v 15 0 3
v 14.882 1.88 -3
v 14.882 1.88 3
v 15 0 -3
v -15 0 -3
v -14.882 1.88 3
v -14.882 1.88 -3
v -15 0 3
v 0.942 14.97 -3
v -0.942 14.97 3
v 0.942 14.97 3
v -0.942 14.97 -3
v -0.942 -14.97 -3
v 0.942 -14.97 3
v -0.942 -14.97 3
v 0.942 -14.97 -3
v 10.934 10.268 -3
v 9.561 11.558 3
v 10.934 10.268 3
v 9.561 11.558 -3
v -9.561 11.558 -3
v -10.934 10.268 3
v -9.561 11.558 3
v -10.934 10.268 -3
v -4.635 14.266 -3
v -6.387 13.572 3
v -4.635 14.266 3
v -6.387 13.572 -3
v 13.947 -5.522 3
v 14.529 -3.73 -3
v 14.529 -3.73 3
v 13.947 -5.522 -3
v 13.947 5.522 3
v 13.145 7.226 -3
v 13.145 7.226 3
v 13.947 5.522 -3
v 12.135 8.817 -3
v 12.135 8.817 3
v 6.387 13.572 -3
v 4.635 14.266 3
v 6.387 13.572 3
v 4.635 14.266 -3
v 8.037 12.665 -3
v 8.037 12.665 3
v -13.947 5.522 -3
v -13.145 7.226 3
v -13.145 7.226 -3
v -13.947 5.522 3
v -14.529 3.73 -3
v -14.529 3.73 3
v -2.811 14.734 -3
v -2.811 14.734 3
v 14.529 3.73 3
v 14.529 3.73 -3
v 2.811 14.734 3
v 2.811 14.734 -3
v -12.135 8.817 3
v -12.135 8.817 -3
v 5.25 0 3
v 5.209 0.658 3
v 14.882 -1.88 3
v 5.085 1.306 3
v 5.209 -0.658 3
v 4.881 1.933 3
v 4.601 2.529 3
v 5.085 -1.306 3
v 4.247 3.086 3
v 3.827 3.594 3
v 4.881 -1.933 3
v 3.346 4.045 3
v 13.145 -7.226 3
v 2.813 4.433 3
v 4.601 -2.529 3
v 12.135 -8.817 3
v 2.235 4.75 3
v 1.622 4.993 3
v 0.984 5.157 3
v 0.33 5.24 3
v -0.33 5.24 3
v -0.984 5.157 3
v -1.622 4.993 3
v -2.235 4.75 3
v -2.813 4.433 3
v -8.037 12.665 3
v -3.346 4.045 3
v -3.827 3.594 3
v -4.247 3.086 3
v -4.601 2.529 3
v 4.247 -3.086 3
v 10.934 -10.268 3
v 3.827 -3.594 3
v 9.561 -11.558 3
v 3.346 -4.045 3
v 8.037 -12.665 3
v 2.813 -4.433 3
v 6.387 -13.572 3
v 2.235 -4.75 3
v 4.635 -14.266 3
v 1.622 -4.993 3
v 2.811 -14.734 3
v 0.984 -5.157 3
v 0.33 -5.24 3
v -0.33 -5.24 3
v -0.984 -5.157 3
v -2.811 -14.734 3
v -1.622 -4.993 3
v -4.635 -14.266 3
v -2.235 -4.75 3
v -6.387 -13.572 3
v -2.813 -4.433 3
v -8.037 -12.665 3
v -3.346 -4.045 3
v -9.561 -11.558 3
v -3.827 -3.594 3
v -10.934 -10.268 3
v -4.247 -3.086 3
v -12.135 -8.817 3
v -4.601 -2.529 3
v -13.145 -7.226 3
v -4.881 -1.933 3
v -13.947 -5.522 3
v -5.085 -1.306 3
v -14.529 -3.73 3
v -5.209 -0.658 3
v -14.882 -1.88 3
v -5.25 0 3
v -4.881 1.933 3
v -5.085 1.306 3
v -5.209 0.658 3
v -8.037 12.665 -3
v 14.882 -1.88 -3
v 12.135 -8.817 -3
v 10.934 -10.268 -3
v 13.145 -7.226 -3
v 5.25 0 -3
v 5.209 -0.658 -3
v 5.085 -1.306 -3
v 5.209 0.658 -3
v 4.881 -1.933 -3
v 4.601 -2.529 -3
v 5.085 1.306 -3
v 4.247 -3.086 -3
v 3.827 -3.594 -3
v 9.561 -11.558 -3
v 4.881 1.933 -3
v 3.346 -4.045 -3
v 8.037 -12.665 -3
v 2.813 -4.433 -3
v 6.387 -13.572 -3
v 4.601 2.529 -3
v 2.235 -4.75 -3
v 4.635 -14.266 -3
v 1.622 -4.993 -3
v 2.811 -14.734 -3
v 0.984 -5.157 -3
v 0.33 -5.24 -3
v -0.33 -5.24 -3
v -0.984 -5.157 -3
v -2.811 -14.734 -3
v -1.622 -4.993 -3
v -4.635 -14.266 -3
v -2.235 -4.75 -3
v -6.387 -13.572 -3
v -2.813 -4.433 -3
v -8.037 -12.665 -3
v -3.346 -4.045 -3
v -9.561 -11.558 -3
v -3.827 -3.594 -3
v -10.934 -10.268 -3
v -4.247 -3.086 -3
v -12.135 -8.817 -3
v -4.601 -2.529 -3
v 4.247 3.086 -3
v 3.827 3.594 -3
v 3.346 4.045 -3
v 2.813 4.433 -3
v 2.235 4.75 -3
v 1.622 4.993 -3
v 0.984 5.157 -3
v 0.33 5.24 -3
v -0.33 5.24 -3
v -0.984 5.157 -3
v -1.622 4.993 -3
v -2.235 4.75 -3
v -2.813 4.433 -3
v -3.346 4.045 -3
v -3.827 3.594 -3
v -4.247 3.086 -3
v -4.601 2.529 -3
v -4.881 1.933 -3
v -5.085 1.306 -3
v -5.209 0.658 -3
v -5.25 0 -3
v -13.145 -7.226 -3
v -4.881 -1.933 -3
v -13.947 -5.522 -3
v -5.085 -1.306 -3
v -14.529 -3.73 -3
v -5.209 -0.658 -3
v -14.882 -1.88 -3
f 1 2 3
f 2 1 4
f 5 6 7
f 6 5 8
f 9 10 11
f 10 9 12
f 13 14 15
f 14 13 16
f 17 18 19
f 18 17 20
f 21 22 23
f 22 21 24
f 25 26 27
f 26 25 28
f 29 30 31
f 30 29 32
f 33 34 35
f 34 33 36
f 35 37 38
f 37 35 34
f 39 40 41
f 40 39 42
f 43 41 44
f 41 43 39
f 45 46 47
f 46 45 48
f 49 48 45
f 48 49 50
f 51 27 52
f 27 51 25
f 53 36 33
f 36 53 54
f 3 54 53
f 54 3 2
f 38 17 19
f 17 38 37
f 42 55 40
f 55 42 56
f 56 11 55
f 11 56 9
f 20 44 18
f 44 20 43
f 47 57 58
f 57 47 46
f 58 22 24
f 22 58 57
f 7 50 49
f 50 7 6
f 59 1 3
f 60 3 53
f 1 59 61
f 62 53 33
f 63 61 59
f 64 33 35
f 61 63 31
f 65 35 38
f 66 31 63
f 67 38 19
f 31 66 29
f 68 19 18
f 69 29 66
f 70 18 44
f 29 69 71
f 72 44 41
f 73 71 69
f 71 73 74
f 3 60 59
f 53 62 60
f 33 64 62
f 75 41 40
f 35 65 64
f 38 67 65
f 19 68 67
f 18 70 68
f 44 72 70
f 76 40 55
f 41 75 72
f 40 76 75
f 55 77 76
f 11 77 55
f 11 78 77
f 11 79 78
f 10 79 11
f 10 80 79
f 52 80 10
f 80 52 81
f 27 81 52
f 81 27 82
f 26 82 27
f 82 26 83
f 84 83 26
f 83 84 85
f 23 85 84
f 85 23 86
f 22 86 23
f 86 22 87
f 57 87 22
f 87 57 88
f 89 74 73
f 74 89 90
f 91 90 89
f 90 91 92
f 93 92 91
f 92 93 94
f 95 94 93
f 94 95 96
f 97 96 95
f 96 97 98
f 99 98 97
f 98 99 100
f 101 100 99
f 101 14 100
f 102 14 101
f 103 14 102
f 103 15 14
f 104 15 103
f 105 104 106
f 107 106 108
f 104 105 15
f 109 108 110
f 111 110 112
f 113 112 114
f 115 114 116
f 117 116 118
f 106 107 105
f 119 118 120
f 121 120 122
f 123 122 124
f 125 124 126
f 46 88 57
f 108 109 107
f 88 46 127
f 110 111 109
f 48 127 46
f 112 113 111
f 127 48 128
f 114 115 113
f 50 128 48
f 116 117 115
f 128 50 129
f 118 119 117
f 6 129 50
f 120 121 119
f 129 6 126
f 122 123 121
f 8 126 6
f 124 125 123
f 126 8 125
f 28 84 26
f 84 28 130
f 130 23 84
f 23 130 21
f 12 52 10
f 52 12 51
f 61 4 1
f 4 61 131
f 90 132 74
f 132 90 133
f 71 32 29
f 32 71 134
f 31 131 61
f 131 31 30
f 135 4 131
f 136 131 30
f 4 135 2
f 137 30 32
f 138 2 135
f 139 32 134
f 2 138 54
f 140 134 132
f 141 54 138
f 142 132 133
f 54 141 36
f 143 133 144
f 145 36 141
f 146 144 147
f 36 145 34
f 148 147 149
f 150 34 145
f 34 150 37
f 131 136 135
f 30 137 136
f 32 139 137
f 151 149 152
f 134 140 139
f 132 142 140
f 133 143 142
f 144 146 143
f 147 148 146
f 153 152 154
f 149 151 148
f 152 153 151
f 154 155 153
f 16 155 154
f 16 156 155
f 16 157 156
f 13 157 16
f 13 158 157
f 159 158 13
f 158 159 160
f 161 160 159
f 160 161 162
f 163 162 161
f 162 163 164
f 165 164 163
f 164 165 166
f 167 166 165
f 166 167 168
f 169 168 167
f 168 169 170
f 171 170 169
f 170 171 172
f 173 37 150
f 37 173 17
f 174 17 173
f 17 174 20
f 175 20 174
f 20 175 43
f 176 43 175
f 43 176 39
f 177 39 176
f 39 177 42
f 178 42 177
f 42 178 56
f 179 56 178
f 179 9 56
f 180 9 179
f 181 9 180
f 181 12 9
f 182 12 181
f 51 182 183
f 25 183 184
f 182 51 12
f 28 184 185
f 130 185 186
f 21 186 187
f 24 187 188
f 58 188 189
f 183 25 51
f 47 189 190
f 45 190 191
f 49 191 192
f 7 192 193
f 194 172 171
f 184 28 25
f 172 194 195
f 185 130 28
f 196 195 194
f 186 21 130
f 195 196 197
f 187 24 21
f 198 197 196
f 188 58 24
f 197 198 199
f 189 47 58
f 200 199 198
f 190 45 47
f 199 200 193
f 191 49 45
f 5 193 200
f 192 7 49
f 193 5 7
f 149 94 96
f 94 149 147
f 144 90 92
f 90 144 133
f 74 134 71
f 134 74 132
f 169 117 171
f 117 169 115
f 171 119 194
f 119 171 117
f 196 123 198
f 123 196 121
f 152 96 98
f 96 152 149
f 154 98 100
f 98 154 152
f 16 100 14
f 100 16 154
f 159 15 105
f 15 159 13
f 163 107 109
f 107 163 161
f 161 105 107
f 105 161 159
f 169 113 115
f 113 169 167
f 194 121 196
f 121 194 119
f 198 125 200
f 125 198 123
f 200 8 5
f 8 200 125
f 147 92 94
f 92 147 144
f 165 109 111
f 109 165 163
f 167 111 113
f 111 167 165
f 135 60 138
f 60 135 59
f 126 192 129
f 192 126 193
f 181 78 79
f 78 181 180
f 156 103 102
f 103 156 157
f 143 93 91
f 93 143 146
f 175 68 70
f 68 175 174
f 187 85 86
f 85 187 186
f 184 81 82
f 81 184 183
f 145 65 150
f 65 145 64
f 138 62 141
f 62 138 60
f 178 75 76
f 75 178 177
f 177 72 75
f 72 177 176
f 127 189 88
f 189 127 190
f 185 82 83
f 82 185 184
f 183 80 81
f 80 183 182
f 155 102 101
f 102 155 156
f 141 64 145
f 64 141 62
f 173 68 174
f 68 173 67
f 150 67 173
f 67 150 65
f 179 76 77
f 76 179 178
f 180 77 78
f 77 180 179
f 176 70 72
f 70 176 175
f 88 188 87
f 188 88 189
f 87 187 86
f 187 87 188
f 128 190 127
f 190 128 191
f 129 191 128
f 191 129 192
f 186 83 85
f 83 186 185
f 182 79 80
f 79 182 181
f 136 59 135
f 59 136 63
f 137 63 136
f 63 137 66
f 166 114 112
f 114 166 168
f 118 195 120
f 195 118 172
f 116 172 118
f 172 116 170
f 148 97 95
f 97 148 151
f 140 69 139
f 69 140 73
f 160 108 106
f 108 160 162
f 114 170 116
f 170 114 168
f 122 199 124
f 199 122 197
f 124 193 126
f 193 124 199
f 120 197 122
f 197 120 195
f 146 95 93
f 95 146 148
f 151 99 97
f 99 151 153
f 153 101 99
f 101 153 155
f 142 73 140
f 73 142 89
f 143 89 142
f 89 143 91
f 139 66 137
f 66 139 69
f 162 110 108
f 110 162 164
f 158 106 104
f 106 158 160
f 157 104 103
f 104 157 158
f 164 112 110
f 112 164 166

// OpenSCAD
$fn = 50;


difference() {
	union() {
		translate(v = [0, 0, -3.0000000000]) {
			cylinder(h = 6, r = 15.0000000000);
		}
	}
	union() {
		translate(v = [0, 0, -100.0000000000]) {
			cylinder(h = 200, r = 5.2500000000);
		}
	}
}
